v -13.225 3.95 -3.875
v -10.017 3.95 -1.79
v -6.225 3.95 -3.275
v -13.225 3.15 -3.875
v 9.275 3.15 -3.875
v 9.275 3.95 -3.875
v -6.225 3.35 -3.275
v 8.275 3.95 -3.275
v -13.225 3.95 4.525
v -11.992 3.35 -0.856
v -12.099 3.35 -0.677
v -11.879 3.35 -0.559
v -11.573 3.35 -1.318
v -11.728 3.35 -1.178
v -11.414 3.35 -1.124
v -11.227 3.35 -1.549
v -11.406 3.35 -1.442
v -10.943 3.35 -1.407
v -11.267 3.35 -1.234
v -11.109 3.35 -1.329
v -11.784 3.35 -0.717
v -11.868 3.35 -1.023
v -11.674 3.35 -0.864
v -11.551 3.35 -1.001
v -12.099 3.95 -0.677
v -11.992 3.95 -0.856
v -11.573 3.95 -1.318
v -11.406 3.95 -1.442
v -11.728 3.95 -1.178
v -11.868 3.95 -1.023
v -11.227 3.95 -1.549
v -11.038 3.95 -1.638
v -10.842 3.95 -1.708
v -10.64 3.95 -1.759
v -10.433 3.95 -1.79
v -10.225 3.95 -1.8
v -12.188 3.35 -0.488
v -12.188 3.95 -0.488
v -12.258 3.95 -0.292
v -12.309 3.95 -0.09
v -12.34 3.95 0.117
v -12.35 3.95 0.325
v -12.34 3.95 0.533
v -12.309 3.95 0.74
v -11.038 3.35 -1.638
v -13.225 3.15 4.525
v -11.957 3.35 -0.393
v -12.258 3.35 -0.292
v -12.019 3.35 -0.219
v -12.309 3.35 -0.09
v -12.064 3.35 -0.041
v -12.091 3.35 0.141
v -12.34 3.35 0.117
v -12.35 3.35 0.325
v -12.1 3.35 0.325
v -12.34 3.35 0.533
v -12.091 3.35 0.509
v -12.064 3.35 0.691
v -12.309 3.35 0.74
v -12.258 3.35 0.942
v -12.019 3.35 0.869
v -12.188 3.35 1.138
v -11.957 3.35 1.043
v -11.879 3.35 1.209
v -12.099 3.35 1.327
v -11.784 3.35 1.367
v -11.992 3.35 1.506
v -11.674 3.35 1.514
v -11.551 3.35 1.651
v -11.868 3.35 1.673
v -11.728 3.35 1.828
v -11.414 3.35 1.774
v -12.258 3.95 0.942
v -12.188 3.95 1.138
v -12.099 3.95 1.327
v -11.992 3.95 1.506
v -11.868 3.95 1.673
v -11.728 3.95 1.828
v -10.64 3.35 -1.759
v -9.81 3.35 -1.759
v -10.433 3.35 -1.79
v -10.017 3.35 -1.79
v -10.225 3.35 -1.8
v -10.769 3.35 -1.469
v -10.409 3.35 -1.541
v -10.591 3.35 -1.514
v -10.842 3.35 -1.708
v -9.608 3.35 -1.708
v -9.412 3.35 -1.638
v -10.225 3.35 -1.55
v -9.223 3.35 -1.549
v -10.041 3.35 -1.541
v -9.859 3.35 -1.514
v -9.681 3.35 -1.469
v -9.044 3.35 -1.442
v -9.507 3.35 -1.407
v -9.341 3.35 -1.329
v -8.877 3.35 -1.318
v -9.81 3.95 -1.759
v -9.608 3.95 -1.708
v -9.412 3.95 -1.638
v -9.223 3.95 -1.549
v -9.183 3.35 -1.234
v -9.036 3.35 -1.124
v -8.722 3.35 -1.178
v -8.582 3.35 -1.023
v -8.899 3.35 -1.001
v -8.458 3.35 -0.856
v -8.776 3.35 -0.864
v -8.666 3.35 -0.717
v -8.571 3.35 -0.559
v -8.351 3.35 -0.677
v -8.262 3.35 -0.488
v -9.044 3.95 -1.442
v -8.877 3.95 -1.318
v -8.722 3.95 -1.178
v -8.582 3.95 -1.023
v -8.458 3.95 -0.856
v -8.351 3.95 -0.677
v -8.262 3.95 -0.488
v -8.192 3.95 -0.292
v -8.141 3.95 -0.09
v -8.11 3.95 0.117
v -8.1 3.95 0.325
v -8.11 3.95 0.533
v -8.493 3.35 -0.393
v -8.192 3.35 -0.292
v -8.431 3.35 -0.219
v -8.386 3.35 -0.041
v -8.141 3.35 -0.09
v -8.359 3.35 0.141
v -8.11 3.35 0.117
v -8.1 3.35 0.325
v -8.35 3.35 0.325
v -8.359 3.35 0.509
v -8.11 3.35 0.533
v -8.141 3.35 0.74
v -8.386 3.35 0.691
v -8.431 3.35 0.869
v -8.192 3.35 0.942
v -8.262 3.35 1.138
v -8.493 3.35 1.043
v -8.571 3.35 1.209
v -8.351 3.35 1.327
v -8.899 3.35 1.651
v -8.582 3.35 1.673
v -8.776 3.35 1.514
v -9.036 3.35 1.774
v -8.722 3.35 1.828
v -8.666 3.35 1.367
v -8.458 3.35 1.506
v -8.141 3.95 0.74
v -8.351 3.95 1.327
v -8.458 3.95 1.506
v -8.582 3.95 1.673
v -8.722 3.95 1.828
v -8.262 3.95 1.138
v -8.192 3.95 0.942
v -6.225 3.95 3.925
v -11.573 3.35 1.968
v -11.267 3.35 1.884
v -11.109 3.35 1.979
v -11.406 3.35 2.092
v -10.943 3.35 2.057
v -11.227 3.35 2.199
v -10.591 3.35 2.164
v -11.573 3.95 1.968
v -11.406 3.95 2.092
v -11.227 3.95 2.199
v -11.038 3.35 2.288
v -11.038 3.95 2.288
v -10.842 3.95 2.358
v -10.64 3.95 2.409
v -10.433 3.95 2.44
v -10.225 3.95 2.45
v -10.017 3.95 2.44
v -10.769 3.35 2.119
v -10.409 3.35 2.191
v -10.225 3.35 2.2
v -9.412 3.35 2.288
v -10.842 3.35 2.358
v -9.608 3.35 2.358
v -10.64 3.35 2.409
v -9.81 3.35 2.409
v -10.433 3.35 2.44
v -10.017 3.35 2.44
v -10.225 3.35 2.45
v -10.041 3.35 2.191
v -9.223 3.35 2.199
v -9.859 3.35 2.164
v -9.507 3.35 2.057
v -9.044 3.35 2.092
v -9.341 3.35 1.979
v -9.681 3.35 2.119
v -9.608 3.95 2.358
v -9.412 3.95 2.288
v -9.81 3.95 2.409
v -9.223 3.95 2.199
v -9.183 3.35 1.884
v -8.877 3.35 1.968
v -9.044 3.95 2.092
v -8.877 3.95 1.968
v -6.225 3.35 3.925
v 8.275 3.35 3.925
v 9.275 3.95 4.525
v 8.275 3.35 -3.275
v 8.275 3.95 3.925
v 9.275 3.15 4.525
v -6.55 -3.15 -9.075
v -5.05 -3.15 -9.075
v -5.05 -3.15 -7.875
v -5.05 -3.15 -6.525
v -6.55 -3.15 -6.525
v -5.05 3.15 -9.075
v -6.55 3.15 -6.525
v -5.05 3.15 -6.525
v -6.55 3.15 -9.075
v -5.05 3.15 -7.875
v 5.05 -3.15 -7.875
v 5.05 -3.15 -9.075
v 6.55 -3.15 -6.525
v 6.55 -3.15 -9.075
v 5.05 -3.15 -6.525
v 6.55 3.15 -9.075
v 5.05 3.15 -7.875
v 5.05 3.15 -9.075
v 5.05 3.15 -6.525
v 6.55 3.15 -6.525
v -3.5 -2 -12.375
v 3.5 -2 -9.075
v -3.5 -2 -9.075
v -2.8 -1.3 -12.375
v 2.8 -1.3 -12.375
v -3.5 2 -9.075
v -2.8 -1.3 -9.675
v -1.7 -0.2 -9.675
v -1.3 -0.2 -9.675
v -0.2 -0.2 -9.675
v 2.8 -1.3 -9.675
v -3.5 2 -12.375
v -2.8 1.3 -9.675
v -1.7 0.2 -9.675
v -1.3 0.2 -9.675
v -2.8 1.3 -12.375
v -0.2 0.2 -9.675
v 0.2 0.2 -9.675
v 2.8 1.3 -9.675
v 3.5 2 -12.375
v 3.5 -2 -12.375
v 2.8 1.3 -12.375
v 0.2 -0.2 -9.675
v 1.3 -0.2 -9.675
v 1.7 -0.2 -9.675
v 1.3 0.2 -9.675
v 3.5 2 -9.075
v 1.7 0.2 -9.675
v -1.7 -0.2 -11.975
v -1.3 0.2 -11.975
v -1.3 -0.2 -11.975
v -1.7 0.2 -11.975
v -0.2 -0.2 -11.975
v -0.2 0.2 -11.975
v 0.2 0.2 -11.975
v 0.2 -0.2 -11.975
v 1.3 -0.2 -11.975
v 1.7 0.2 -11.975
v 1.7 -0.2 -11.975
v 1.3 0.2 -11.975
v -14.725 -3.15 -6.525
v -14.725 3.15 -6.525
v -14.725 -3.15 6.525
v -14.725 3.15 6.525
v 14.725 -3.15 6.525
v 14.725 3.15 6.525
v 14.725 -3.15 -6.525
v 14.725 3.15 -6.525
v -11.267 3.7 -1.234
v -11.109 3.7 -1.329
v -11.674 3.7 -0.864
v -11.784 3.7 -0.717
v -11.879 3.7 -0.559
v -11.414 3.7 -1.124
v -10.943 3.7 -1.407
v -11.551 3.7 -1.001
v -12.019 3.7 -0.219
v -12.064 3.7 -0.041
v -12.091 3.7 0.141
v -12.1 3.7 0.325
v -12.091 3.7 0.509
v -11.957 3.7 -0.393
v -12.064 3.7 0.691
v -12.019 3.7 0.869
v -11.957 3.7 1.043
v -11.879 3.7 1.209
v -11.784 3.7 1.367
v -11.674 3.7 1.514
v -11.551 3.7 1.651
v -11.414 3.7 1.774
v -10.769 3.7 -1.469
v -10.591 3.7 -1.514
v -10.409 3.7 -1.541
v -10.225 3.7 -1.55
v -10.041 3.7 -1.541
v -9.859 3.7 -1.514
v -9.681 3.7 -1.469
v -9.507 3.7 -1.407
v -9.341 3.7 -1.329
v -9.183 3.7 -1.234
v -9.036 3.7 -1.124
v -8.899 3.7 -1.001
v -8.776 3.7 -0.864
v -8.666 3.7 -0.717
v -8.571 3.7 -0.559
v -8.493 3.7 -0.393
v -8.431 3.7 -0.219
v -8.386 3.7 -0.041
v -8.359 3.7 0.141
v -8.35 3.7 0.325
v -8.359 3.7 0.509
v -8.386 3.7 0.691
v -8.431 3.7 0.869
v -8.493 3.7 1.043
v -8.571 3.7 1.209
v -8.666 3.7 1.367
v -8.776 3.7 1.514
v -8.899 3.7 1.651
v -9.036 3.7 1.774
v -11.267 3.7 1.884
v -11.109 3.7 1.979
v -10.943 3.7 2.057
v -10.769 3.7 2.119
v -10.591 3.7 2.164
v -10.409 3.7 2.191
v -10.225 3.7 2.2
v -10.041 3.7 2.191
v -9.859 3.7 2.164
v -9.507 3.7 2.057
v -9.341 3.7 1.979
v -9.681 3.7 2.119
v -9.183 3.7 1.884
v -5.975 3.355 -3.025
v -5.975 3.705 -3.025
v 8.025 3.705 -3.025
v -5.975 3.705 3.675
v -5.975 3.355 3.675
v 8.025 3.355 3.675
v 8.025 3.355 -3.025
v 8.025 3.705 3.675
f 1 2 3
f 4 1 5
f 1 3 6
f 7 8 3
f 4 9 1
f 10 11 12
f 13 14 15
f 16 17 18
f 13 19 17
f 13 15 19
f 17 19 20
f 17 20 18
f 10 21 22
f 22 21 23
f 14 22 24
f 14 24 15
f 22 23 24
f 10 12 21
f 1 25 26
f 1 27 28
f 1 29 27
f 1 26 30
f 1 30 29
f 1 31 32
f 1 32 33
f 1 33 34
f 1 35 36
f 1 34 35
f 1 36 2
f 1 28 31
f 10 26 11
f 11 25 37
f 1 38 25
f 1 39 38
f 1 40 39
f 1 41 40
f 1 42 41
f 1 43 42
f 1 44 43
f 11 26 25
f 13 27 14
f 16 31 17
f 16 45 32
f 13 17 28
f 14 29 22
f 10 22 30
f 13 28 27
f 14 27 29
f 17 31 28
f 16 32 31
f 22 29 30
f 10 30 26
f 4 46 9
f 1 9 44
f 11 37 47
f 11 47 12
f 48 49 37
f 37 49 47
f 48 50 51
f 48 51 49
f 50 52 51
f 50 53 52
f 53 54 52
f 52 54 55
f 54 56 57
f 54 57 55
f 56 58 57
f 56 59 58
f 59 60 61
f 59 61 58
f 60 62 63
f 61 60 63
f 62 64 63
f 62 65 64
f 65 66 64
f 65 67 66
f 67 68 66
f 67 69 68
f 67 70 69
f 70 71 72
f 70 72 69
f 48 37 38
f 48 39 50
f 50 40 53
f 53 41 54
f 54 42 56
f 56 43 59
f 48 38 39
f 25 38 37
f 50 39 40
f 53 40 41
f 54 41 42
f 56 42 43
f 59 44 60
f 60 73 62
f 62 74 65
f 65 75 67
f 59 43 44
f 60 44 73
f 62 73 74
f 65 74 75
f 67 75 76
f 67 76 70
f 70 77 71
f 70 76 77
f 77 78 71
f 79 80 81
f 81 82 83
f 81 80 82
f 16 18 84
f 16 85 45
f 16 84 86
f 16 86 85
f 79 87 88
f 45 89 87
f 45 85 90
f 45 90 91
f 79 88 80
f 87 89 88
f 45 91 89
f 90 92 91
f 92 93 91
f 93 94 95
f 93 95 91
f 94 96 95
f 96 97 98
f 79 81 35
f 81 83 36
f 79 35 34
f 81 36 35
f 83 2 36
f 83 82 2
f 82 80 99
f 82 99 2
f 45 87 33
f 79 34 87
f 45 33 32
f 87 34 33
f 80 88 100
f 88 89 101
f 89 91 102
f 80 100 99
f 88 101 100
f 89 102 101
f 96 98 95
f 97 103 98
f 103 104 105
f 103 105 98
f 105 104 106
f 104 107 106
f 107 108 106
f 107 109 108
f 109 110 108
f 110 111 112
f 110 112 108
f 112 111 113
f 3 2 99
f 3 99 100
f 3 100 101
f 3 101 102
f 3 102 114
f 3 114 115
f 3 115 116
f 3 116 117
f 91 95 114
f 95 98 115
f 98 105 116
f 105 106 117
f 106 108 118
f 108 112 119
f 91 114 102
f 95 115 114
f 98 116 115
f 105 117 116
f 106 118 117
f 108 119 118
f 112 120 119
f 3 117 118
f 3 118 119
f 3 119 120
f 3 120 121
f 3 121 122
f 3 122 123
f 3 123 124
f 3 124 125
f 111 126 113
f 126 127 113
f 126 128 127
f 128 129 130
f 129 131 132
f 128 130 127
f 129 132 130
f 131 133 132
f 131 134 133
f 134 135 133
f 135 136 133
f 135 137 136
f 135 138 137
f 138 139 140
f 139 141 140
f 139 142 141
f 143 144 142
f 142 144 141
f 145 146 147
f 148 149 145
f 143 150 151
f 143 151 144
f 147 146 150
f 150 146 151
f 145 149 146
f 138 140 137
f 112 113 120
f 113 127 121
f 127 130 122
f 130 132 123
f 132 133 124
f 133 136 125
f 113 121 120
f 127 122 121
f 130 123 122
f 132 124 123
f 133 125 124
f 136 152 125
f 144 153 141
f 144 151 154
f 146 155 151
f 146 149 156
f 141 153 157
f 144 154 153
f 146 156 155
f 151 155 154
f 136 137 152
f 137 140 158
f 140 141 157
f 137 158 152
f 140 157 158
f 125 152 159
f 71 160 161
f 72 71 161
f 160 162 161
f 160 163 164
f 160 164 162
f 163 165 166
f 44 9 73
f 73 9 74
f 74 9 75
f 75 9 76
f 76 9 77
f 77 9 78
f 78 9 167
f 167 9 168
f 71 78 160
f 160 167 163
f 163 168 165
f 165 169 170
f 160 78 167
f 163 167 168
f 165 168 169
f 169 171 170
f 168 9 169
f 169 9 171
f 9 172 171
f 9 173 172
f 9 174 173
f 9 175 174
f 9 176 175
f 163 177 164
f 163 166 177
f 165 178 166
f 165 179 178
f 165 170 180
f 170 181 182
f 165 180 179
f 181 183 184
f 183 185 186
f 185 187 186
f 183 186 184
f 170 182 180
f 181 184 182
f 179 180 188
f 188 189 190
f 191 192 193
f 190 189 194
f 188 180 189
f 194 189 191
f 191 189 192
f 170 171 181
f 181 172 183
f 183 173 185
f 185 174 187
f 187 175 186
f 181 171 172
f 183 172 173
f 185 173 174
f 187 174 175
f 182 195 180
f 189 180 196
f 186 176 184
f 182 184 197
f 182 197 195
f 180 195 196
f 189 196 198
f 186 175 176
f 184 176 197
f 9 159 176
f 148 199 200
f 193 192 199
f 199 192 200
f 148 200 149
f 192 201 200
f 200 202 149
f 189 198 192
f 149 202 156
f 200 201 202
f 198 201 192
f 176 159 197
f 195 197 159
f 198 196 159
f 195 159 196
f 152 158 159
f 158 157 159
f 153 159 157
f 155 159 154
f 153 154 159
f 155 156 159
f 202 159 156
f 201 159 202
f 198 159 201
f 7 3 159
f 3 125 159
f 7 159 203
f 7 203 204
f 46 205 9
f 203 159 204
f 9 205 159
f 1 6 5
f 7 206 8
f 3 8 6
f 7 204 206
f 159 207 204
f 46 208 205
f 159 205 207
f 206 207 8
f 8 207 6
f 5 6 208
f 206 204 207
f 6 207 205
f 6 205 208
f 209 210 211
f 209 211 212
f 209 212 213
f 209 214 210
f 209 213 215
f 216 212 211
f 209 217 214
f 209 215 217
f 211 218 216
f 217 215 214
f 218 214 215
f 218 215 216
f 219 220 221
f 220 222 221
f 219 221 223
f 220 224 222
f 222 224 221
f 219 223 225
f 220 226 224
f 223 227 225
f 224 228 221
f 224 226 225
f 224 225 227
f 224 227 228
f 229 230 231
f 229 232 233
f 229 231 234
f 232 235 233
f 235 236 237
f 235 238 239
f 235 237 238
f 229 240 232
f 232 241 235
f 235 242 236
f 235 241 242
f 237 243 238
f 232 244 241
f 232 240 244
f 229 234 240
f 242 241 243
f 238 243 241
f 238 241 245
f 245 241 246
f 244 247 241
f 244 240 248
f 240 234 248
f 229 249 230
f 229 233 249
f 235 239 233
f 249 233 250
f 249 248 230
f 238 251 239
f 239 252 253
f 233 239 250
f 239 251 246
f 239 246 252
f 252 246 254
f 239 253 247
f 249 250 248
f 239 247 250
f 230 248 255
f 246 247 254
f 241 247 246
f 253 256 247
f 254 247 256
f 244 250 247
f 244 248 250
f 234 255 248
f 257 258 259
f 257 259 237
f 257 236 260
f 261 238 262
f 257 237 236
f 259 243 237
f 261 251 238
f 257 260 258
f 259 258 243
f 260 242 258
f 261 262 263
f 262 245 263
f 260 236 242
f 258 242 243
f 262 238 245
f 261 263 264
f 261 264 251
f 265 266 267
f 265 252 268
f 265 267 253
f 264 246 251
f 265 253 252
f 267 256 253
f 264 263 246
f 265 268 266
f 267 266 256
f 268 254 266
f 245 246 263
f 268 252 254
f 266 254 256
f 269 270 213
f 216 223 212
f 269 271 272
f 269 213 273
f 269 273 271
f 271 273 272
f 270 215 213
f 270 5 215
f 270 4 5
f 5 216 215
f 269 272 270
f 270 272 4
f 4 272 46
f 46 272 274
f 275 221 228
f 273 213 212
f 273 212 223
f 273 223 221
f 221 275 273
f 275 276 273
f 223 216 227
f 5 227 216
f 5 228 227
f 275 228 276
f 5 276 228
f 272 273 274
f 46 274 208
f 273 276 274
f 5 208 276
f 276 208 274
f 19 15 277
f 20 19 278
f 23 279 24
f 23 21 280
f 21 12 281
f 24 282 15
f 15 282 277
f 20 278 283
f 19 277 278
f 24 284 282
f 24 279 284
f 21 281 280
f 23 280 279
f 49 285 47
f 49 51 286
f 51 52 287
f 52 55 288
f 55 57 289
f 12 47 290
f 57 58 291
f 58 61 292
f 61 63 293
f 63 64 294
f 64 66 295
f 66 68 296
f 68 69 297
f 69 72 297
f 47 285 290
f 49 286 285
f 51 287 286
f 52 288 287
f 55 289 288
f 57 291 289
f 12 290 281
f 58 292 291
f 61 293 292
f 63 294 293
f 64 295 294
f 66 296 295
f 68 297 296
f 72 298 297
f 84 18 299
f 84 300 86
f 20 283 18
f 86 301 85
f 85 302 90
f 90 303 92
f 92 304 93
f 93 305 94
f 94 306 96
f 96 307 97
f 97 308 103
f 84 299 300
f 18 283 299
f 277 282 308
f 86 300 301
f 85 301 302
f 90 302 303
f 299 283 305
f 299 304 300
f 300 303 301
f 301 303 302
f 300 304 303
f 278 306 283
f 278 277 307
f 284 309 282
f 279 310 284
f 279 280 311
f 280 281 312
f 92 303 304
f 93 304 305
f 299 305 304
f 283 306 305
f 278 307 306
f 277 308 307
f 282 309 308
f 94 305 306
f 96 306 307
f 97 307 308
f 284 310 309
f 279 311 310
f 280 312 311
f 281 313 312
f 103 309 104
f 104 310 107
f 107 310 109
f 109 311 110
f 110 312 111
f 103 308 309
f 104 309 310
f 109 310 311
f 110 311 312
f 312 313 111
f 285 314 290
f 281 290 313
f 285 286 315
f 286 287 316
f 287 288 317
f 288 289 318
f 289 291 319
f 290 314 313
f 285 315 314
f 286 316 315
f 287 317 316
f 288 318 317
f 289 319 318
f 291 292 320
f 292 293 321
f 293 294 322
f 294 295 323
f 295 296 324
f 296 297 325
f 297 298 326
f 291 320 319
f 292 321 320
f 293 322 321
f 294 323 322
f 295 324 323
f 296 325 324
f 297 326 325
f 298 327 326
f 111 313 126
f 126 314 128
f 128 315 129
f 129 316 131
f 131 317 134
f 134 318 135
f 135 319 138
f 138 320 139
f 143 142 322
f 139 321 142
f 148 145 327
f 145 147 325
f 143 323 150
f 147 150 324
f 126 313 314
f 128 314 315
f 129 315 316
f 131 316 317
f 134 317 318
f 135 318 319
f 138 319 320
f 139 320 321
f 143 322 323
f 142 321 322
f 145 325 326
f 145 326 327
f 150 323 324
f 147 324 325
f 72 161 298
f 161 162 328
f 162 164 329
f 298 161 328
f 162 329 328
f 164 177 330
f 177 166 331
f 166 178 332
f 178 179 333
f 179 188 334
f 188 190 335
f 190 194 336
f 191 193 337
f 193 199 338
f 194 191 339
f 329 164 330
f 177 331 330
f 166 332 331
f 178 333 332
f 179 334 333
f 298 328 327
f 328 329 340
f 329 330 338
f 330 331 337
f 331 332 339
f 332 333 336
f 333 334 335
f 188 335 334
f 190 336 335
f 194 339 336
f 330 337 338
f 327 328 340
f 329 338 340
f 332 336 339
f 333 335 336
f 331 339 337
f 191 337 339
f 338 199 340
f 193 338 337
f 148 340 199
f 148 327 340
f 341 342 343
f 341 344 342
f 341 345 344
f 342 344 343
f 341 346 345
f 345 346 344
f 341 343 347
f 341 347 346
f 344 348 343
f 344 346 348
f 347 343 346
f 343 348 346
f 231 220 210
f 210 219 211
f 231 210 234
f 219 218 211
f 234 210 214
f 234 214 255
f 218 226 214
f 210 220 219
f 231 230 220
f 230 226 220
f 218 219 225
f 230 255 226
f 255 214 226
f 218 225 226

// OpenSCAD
// ============================================================
//  Sharp GP2Y0D413K0F  Distance Measuring Sensor
//  Outline model based on datasheet p.2 "Outline Dimensions"
//
//  Units  : mm
//  Origin : center of the main body case
//  Axes   : +Z = up, +Y = front (lens side), connector at bottom
//
//  Note: dimensions marked "*" in the datasheet are lens-center
//        positions, values in ( ) are reference dimensions.
// ============================================================

$fn = 64;

/* ---------------- datasheet dimensions ---------------- */
BODY_W       = 29.45;          // body width
BODY_D       = 6.3;            // body depth (6.3) reference
BODY_H       = 13.05;          // body case height
TOTAL_D      = 7.1;            // overall depth incl. lens case (7.1 +/-0.1)
LENS_PRJ     = TOTAL_D - BODY_D;   // 0.8 : lens-case protrusion

LENS_CASE_H  = 8.4;            // lens case height
LENS_WIN_H   = 7.2;            // lens window opening height
LENS_TOP_OFS = 2.0;            // lens case top, measured from body top

EMIT_X       = 4.5;            // * emitter lens center from left edge
DET_X        = 19.7;           // * detector lens center from left edge
EMIT_LENS_D  = 3.75;           // emitter lens diameter

PWB_W        = 10.1;           // PWB width
PWB_D        = 6.3;            // PWB depth
PWB_T        = 1.2;            // PWB thickness
PWB_GAP      = 1.35;           // gap between case bottom and PWB
                               //  -> overall height 18.9 (+0.3/-0.3)

CONN_W       = 7.0;            // connector JCTC 12001W90-3P-HF (simplified)
CONN_D       = 4.0;
CONN_H       = 3.3;            // (3.3) reference
PIN_PITCH    = 1.5;

TOTAL_H      = 18.9;           // = BODY_H + PWB_GAP + PWB_T + CONN_H

/* ---------------- derived values ---------------- */
X_L     = -BODY_W/2;                                   // body left edge
FRONT   =  BODY_D/2;                                   // body front face
LENS_Z  =  BODY_H/2 - LENS_TOP_OFS - LENS_CASE_H/2;    // lens center height

LC_X0   = X_L + 1.5;            // lens case left edge
LC_W    = 22.5;                 // lens case width
LC_T    = 1.5;                  // lens case slab thickness (overlaps body)

RWIN_X0 = X_L + 8.5;            // detector rectangular window
RWIN_X1 = X_L + 23.0;
WIN_DEP = 0.6;                  // window recess depth

PWB_Z      = -BODY_H/2 - PWB_GAP - PWB_T/2;            // PWB center Z
CONN_TOP_Z = -BODY_H/2 - PWB_GAP - PWB_T;              // connector top Z

/* ---------------- modules ---------------- */

// main body case (Carbonic ABS)
module main_body() {
    color("DimGray")
        cube([BODY_W, BODY_D, BODY_H], center = true);
}

// lens case protruding from the front face, with two windows
module lens_case() {
    color("DimGray")
    difference() {
        // lens case slab
        translate([LC_X0 + LC_W/2,
                   FRONT + LENS_PRJ - LC_T/2,
                   LENS_Z])
            cube([LC_W, LC_T, LENS_CASE_H], center = true);

        // emitter window (circular, left)
        translate([X_L + EMIT_X,
                   FRONT + LENS_PRJ - WIN_DEP,
                   LENS_Z])
            rotate([-90, 0, 0])
                cylinder(d = EMIT_LENS_D + 0.5, h = WIN_DEP + 0.2);

        // detector window (rectangular, right)
        translate([(RWIN_X0 + RWIN_X1)/2,
                   FRONT + LENS_PRJ - WIN_DEP/2 + 0.1,
                   LENS_Z])
            cube([RWIN_X1 - RWIN_X0, WIN_DEP + 0.2, LENS_WIN_H],
                 center = true);
    }
}

// emitter lens (circular, acrylic, visible-light cut-off)
module emitter_lens() {
    color("DarkSlateBlue", 0.9)
        translate([X_L + EMIT_X,
                   FRONT + LENS_PRJ - WIN_DEP,
                   LENS_Z])
            rotate([-90, 0, 0])
                cylinder(d = EMIT_LENS_D, h = 0.35);
}

// detector lens (rectangular window, right side)
module detector_lens() {
    color("DarkSlateBlue", 0.9)
        translate([(RWIN_X0 + RWIN_X1)/2,
                   FRONT + LENS_PRJ - WIN_DEP + 0.18,
                   LENS_Z])
            cube([RWIN_X1 - RWIN_X0 - 0.5, 0.35, LENS_WIN_H - 0.5],
                 center = true);
}

// legs holding the PWB below the case
module pwb_legs() {
    color("DimGray")
    for (sx = [-1, 1])
        translate([sx * (PWB_W/2 + 0.75),
                   0,
                   -BODY_H/2 - (PWB_GAP + PWB_T)/2])
            cube([1.5, BODY_D, PWB_GAP + PWB_T], center = true);
}

// PWB (paper phenol)
module pwb() {
    color("Tan")
        translate([0, 0, PWB_Z])
            cube([PWB_W, PWB_D, PWB_T], center = true);
}

// 3-pin connector JCTC 12001W90-3P-HF (simplified)
module connector() {
    // housing with downward opening
    color("White")
    difference() {
        translate([0, 0, CONN_TOP_Z - CONN_H/2])
            cube([CONN_W, CONN_D, CONN_H], center = true);
        translate([0, 0, CONN_TOP_Z - CONN_H/2 - 0.6])
            cube([CONN_W - 1.4, CONN_D - 1.4, CONN_H], center = true);
    }
    // 3 pins, 1.5 mm pitch
    color("Gold")
    for (i = [-1 : 1])
        translate([i * PIN_PITCH, 0, CONN_TOP_Z - (CONN_H - 0.4)/2])
            cube([0.4, 0.4, CONN_H - 0.4], center = true);
}

/* ---------------- assembly ---------------- */
module GP2Y0D413K0F() {
    main_body();
    lens_case();
    emitter_lens();
    detector_lens();
    pwb_legs();
    pwb();
    connector();
}

GP2Y0D413K0F();
